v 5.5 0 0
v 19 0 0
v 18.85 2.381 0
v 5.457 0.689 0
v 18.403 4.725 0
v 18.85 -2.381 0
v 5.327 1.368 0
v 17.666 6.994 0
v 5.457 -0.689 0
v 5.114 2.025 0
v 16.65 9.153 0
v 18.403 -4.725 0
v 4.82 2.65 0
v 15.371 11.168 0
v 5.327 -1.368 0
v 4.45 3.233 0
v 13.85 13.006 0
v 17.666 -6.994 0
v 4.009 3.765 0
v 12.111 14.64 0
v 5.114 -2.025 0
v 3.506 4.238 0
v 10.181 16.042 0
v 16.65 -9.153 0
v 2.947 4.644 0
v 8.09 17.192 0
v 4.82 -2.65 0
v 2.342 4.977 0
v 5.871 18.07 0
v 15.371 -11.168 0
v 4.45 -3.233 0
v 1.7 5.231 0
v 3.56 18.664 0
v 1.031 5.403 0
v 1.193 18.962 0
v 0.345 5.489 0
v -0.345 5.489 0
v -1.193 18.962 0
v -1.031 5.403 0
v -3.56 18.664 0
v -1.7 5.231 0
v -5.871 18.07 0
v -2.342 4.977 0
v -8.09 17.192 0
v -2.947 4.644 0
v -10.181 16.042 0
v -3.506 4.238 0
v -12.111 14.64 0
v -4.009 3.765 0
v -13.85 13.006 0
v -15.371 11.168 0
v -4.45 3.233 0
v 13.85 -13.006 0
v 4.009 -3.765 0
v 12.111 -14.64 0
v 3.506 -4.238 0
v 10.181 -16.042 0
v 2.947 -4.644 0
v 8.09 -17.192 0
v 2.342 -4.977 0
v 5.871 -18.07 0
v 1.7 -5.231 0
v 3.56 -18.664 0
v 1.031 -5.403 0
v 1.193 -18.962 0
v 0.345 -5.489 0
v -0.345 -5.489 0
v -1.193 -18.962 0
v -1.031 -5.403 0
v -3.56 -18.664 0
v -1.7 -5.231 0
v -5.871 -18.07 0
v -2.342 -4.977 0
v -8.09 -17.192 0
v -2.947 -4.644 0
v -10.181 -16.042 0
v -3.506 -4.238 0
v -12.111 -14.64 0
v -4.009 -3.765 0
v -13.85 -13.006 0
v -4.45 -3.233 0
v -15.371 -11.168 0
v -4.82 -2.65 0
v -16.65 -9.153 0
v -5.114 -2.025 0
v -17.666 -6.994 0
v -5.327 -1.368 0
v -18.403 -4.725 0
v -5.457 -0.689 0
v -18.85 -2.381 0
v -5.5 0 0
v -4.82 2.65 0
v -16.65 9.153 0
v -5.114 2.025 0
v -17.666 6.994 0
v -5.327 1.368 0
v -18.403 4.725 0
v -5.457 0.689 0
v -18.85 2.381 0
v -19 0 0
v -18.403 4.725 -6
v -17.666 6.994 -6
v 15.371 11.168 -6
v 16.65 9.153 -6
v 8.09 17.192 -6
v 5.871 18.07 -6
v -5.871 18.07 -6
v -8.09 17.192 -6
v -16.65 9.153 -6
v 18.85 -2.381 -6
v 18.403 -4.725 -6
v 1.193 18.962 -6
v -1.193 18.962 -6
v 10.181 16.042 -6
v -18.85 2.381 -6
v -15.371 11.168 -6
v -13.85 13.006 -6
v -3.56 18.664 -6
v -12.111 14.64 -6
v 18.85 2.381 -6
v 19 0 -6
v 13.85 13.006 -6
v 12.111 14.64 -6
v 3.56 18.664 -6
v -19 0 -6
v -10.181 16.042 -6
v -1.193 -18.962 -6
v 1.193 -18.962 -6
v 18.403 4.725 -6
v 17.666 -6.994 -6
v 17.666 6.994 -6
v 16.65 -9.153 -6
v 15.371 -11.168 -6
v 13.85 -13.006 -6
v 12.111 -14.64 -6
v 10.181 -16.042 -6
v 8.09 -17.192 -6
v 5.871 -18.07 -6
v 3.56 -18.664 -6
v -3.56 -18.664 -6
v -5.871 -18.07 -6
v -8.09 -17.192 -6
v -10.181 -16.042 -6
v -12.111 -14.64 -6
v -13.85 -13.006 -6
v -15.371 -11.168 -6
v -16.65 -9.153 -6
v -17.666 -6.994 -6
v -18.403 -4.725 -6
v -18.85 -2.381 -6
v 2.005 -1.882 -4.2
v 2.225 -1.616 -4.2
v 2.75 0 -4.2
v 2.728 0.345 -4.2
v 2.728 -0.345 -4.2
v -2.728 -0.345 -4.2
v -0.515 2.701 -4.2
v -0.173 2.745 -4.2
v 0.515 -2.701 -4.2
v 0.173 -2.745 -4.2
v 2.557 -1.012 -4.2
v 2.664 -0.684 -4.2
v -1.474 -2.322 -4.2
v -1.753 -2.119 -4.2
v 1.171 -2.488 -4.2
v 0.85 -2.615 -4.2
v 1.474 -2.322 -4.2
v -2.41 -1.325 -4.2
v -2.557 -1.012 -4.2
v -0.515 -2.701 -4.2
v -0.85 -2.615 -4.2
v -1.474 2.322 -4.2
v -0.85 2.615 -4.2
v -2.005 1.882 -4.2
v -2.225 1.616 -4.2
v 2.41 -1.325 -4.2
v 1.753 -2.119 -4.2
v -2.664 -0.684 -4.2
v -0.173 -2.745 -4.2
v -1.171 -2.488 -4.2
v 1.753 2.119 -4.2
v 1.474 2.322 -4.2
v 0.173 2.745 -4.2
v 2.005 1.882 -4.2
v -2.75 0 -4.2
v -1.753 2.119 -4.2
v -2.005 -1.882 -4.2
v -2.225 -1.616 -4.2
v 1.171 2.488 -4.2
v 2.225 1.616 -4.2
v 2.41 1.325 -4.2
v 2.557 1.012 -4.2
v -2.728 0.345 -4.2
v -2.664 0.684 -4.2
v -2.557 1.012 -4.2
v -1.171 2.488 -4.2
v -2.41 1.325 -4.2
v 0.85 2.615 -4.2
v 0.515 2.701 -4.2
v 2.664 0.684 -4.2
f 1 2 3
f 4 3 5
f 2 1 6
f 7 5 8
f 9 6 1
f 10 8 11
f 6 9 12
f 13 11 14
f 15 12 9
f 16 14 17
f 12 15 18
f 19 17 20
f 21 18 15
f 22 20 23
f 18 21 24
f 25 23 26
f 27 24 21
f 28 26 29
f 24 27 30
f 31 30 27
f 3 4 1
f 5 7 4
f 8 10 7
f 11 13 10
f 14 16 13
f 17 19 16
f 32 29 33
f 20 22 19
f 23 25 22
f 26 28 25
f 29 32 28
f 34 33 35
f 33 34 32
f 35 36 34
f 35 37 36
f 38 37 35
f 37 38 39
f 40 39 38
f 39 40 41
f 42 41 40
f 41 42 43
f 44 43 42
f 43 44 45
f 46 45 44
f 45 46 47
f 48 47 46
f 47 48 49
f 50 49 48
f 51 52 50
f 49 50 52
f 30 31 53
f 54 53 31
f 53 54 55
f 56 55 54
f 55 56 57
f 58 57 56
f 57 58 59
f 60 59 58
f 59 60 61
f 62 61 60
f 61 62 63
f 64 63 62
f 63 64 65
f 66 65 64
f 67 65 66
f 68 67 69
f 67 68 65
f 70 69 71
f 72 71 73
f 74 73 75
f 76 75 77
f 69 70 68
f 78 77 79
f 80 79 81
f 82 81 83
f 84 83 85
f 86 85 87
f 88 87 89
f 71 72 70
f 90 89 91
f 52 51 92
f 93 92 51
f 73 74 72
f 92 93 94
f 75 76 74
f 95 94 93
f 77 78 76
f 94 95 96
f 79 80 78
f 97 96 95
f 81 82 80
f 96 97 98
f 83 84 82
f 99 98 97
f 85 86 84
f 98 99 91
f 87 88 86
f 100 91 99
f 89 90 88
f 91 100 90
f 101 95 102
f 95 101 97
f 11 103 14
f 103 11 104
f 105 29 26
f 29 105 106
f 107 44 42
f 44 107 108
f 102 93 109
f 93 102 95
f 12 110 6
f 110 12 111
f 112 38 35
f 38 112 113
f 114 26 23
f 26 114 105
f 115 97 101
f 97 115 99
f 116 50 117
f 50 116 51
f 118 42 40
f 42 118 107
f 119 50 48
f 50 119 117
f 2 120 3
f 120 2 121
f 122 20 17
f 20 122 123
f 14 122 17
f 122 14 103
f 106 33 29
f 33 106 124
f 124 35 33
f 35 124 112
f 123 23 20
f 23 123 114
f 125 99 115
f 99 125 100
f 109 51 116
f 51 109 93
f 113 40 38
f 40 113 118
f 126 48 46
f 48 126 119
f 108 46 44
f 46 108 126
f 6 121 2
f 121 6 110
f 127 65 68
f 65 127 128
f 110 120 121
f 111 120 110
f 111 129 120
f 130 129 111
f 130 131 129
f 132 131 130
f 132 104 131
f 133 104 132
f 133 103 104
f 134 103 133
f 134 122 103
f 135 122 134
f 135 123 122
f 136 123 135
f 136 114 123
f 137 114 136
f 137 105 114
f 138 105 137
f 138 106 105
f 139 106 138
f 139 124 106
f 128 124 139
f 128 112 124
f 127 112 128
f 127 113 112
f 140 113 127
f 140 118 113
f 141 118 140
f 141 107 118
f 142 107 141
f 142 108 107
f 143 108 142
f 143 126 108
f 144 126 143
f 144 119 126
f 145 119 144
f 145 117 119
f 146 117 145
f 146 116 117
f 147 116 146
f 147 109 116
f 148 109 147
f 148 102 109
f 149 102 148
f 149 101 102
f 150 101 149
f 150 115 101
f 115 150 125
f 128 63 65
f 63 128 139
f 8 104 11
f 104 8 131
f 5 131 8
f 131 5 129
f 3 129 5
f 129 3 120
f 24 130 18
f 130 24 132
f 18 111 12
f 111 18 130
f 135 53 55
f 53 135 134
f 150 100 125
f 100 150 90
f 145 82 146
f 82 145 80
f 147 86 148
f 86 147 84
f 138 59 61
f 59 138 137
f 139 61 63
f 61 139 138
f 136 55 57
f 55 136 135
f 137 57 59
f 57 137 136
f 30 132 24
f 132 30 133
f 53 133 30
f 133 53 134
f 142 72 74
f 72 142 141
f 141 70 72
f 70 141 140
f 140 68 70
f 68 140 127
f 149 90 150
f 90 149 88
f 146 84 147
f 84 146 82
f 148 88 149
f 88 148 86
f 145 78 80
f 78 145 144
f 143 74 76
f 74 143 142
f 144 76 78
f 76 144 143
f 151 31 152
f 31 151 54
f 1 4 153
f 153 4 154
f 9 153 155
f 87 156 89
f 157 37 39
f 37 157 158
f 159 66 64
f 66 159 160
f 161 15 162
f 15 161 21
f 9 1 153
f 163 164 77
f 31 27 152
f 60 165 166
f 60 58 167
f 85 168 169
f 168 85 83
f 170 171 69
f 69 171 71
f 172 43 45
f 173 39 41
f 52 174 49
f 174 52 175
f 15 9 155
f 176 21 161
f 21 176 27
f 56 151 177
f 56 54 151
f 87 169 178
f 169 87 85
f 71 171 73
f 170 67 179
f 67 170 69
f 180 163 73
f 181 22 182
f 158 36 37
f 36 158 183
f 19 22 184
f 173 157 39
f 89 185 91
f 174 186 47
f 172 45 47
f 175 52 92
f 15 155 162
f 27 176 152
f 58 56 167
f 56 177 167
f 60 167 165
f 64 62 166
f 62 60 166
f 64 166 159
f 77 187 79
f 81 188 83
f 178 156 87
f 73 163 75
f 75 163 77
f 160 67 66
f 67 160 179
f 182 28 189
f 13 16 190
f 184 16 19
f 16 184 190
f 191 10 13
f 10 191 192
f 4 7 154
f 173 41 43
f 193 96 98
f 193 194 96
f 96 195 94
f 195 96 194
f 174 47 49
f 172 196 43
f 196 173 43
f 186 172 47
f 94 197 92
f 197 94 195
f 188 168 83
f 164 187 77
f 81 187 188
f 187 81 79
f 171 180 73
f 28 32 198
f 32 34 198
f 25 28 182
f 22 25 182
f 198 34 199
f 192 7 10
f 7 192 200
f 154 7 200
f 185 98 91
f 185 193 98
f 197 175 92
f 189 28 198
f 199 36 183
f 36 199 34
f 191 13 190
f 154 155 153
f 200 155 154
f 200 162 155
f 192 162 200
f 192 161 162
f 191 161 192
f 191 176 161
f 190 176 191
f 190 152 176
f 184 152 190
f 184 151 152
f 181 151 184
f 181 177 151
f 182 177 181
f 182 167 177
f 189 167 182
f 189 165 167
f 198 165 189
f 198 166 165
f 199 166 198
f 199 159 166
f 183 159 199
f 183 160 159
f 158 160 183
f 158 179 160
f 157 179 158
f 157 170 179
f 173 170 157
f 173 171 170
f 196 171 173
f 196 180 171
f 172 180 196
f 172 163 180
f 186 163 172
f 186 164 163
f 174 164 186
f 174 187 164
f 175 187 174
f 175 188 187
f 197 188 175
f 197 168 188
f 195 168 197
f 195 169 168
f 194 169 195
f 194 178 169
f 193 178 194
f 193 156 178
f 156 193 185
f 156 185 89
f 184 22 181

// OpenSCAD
$fn = 50;


difference() {
	union() {
		translate(v = [0, 0, -3.0000000000]) {
			cylinder(h = 3, r = 10.0000000000);
		}
		translate(v = [0, 0, -6.0000000000]) {
			cylinder(h = 6, r = 19.0000000000);
		}
	}
	union() {
		translate(v = [0, 0, 0]) {
			rotate(a = [0, 0, 0]) {
				difference() {
					union() {
						#translate(v = [0, 0, -3.0000000000]) {
							cylinder(h = 3, r = 2.2500000000);
						}
						#translate(v = [0, 0, -4.2000000000]) {
							cylinder(h = 4.2000000000, r = 10.0000000000, r1 = 2.7500000000, r2 = 5.5000000000);
						}
						#translate(v = [0, 0, -3.0000000000]) {
							cylinder(h = 3, r = 2.7500000000);
						}
						#translate(v = [0, 0, -3.0000000000]) {
							cylinder(h = 3, r = 2.2500000000);
						}
					}
					union();
				}
			}
		}
	}
}
